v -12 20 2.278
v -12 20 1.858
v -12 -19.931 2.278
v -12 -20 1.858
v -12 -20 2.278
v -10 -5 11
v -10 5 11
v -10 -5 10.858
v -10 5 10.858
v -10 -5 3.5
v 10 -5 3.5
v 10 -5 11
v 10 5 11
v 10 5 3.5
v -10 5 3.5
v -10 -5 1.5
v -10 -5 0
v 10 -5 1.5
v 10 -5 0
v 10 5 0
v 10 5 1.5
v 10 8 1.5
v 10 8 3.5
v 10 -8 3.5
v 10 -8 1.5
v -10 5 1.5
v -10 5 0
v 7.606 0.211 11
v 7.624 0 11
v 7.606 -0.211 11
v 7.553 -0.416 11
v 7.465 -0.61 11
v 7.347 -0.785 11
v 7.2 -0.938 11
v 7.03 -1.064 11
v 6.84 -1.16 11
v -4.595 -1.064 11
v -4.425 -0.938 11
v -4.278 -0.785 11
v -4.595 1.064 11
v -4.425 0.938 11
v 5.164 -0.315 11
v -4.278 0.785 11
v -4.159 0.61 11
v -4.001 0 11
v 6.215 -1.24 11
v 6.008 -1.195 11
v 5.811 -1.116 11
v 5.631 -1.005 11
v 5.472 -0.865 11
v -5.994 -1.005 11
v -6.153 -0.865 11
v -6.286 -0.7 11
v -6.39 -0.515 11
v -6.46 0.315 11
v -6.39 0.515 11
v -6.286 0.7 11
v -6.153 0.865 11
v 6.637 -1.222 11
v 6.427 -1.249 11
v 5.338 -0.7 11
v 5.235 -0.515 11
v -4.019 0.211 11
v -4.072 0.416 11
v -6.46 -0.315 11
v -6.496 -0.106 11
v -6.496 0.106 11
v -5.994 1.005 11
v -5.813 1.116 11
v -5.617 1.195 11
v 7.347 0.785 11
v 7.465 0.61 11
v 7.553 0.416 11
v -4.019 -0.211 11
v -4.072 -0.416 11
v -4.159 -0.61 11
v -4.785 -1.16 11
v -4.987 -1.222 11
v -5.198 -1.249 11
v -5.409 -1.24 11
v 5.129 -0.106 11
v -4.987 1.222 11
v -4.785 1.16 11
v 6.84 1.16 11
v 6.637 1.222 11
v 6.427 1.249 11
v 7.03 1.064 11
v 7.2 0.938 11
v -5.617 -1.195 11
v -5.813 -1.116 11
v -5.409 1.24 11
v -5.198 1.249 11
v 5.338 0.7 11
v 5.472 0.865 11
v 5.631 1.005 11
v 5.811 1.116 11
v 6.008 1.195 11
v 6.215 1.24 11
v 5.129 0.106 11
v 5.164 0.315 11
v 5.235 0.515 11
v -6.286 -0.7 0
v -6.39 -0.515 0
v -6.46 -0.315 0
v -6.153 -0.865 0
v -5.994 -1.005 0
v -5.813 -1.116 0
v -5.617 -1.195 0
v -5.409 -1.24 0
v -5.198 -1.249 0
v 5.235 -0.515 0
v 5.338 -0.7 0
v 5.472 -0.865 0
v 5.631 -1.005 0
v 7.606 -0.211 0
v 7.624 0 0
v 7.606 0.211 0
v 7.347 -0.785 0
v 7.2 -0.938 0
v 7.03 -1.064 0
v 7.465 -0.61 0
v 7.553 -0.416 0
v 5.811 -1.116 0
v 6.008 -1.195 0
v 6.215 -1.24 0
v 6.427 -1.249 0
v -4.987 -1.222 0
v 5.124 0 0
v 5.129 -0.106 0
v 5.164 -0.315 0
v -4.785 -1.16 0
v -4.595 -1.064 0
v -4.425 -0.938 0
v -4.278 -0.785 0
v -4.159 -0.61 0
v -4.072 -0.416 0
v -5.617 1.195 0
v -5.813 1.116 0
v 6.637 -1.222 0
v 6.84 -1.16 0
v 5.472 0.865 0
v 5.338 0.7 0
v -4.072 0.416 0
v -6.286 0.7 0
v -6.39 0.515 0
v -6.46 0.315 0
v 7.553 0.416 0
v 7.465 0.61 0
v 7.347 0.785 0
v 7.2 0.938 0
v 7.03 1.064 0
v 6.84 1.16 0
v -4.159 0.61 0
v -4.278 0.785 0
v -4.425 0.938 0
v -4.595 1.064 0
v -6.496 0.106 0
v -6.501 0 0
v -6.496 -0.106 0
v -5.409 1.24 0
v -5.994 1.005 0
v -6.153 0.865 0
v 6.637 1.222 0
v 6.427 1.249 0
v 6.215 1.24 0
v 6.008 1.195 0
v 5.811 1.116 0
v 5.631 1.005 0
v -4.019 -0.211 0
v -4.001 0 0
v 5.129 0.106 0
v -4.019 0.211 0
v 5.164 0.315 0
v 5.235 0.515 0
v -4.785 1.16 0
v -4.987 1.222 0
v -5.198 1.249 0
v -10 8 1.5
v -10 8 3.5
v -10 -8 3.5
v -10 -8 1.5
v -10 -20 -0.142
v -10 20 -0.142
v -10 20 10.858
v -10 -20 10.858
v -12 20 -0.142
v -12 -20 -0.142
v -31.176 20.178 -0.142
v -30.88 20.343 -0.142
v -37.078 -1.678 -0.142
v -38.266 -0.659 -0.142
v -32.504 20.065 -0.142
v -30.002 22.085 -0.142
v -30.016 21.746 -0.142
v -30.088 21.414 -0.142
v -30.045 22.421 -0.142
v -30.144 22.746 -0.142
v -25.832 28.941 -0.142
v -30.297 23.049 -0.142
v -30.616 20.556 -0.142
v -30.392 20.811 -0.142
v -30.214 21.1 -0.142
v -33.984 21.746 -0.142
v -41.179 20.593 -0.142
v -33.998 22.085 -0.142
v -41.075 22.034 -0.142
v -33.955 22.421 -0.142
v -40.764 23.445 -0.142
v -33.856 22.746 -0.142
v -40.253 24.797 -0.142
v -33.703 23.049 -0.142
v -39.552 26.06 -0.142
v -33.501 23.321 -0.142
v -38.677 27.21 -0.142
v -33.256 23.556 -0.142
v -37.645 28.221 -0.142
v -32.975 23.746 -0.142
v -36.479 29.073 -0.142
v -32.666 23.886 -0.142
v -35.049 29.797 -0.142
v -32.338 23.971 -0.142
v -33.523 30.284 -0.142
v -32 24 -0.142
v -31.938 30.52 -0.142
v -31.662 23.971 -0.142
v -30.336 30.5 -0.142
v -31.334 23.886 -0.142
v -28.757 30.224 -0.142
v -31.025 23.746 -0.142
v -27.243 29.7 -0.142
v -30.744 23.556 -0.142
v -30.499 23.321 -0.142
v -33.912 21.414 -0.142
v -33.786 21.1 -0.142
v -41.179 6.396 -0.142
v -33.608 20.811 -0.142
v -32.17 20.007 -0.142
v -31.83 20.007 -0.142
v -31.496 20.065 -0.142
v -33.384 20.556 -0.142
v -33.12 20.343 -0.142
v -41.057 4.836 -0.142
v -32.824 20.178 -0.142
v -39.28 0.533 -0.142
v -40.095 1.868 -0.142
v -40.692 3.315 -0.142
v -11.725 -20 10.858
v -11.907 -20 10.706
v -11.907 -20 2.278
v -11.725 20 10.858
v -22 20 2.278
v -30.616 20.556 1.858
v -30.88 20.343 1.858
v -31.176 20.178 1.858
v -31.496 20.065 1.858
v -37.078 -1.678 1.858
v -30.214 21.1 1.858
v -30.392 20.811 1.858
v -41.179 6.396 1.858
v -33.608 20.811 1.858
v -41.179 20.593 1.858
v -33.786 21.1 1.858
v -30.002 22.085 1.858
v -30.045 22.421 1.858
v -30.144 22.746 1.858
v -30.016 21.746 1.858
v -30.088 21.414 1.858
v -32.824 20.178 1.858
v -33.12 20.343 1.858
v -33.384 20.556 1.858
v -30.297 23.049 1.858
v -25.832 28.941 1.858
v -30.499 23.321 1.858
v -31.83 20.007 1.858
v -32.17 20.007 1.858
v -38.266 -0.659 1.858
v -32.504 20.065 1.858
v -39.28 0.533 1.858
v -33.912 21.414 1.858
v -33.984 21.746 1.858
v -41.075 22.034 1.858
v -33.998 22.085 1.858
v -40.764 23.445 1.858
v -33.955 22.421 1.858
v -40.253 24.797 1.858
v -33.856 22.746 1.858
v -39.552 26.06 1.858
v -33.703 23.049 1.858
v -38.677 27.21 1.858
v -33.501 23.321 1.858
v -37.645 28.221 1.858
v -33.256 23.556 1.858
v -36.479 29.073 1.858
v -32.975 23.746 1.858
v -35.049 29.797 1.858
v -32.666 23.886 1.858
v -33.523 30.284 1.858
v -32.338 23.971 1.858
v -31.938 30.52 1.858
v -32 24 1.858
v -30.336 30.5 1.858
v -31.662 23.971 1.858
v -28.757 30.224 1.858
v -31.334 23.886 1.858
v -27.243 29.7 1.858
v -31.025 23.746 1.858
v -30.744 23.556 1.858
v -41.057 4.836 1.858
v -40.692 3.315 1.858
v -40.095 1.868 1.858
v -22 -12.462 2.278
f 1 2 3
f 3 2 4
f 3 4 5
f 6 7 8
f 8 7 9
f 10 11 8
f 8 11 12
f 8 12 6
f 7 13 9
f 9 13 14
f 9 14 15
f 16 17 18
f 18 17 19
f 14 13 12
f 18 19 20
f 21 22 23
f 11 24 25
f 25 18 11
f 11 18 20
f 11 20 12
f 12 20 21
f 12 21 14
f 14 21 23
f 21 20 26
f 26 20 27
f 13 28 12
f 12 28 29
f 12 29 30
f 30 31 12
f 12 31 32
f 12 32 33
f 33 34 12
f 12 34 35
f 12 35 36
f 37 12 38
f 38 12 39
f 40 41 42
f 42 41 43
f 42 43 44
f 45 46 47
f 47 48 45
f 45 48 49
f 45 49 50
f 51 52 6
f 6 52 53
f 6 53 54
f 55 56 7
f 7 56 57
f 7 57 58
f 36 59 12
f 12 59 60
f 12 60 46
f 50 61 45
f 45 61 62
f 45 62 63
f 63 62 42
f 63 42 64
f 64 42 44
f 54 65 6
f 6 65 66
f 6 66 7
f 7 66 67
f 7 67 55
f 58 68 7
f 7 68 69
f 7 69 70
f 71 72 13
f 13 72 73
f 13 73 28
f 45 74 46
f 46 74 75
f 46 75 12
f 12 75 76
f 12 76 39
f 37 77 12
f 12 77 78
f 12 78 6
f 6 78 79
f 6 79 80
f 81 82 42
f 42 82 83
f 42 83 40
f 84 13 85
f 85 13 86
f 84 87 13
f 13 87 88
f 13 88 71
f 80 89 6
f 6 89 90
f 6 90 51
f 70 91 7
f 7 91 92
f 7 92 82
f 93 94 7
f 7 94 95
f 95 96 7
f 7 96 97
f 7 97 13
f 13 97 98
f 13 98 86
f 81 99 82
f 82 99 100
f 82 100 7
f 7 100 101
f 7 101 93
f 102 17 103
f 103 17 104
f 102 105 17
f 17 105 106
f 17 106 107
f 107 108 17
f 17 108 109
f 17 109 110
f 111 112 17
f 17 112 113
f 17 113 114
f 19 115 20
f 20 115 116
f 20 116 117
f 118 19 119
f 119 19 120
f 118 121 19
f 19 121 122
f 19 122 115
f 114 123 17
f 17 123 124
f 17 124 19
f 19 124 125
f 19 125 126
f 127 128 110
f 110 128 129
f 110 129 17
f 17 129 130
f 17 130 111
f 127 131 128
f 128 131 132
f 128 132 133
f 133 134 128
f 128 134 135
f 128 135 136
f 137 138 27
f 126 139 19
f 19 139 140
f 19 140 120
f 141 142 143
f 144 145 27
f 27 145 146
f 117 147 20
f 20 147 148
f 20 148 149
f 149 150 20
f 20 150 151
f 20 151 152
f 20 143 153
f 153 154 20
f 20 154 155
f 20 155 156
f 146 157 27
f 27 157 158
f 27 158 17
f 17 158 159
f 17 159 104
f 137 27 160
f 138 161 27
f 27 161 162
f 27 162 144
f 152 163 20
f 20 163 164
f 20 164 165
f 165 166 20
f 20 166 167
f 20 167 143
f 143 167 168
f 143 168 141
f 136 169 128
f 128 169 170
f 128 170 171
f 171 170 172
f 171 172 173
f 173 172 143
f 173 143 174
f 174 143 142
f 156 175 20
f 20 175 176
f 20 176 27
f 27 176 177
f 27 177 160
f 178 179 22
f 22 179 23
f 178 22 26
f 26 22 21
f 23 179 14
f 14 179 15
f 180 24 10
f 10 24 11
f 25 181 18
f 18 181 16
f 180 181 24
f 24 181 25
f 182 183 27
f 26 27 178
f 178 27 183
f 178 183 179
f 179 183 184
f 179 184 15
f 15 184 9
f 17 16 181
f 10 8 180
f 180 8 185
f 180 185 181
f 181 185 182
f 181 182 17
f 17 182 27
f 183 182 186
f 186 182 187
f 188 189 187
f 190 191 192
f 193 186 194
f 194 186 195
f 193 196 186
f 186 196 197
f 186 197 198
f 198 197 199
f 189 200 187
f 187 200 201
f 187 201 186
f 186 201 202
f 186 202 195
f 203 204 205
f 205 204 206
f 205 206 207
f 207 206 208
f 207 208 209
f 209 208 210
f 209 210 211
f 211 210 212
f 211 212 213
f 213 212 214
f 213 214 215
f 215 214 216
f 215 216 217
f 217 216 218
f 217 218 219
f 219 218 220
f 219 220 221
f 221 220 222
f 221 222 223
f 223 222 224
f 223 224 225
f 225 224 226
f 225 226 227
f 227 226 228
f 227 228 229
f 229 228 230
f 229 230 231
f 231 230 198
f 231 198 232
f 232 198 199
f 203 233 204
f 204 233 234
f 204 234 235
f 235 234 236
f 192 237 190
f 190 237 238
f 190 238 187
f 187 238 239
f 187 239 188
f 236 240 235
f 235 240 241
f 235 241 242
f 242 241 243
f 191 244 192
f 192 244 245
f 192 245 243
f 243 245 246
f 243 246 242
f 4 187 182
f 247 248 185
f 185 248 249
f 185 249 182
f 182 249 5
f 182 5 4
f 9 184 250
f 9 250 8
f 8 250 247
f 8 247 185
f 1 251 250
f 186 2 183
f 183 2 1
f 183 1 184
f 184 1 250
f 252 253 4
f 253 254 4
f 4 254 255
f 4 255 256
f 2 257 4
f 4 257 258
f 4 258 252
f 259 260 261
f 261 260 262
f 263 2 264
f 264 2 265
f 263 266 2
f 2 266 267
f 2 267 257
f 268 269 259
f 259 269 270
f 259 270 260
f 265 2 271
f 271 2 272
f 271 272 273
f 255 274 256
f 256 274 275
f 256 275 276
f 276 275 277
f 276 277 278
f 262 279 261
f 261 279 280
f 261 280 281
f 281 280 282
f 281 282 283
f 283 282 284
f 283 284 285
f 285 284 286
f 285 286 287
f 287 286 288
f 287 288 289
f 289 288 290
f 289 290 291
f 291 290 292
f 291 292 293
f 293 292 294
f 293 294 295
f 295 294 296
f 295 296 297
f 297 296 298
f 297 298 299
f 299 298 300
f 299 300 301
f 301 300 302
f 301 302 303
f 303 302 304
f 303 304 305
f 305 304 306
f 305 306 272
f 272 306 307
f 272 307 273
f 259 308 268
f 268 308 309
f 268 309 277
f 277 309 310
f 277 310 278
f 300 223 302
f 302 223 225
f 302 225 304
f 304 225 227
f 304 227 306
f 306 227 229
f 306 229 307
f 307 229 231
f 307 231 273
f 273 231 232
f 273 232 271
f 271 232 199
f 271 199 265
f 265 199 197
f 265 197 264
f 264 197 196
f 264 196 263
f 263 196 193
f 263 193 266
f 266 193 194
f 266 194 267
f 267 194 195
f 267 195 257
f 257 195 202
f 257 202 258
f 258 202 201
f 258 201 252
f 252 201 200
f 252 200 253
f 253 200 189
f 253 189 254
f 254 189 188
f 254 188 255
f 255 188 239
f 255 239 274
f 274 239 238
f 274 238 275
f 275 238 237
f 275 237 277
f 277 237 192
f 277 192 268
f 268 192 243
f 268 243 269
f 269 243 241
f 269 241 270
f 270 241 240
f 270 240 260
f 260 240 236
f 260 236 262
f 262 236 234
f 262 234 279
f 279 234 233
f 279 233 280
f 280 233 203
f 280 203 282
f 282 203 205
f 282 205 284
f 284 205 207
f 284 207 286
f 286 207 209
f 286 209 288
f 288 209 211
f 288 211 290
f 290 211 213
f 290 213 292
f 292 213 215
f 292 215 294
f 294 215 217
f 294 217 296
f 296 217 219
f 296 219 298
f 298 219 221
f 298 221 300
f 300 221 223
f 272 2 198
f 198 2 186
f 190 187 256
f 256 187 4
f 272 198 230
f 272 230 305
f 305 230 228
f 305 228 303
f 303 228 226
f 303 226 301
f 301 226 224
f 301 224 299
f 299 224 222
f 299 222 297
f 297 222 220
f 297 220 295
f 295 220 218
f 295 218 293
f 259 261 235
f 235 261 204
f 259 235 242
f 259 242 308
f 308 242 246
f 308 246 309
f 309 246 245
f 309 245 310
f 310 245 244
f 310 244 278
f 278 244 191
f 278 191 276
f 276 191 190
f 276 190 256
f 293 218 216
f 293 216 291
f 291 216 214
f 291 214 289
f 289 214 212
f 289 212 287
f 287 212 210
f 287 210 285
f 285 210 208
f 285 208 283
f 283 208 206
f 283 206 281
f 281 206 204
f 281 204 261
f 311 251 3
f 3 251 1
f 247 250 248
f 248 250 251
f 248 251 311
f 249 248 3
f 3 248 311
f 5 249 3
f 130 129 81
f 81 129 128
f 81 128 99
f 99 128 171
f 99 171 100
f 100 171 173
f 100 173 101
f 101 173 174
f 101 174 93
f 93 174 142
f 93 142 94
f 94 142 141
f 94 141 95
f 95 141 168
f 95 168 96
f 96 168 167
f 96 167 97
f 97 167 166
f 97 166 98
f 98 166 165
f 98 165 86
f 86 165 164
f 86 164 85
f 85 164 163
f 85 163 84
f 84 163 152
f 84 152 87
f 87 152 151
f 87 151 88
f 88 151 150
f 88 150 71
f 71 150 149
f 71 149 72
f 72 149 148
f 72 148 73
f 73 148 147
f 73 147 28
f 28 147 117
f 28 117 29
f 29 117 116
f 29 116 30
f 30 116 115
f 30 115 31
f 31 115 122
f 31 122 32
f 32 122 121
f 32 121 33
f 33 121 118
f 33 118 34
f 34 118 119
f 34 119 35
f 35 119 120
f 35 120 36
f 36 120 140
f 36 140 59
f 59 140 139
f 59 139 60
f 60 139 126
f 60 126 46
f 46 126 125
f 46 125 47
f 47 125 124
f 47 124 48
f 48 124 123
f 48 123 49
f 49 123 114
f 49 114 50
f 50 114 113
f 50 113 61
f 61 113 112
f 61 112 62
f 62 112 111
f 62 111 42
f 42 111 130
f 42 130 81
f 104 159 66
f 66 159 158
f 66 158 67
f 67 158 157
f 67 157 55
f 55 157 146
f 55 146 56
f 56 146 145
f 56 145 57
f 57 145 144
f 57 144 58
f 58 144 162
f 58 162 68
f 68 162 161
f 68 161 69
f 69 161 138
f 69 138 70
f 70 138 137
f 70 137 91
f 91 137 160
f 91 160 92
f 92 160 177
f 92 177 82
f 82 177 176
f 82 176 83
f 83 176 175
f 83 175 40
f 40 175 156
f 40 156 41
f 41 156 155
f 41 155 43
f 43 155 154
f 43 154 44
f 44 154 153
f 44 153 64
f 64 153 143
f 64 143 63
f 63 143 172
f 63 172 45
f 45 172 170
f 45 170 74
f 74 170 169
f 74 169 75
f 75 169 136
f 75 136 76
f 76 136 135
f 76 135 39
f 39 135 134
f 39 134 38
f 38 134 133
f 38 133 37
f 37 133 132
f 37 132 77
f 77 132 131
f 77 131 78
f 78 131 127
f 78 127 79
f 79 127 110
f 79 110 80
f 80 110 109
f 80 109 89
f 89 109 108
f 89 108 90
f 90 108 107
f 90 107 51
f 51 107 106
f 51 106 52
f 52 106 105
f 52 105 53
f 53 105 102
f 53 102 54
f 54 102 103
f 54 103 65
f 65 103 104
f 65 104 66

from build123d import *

# Parameters (mm, degrees)
SKETCH1_W                = 20
SKETCH1_H                = 10
BOSS_EXTRUDE1_DEPTH      = 11
BOSS_EXTRUDE2_DEPTH      = 3
BOSS_EXTRUDE2_DEPTH_BACK = 13
SKETCH2_W                = 20
SKETCH2_H                = 2
SKETCH3_W                = 11
SKETCH3_H                = 40
BOSS_EXTRUDE3_DEPTH      = 2
SKETCH5_W                = 2
SKETCH5_H                = 60
BOSS_EXTRUDE4_DEPTH      = 40
F_4_0MM_DOWEL_SLOT1_D    = 4
CUT_EXTRUDE1_DEPTH       = 40
CUT_EXTRUDE2_DEPTH       = 40
FILLET1_R                = 10
SKETCH11_W               = 53.631829023
SKETCH11_H               = 118.756200052
CUT_EXTRUDE3_DEPTH       = 40
FILLET2_R                = 10
SKETCH12_W               = 8.579575143
SKETCH12_H               = 40
BOSS_EXTRUDE5_DEPTH      = 10
CUT_EXTRUDE4_DEPTH       = 40
CUT_EXTRUDE5_DEPTH       = 40
F_2_5MM_DOWEL_SLOT1_D    = 2.5


with BuildPart() as part:
    # Sketch1 → Boss-Extrude1 (new body)
    with BuildSketch(Plane.XY):
        Rectangle(SKETCH1_W, SKETCH1_H)
    extrude(amount=BOSS_EXTRUDE1_DEPTH)

    # Sketch2 → Boss-Extrude2 (add, two sides: drawn at the far end of the back side and taken through both)
    with BuildSketch(Plane(origin=(0, 5, 0), x_dir=(1, 0, 0), z_dir=(0, 1, 0)).offset(-BOSS_EXTRUDE2_DEPTH_BACK)):
        with Locations((0, -2.5)):
            Rectangle(SKETCH2_W, SKETCH2_H)
    extrude(amount=BOSS_EXTRUDE2_DEPTH + BOSS_EXTRUDE2_DEPTH_BACK)

    # Sketch3 → Boss-Extrude3 (add)
    with BuildSketch(Plane.ZY.offset(10)):
        with Locations((5.357522791, 0)):
            Rectangle(SKETCH3_W, SKETCH3_H)
    extrude(amount=BOSS_EXTRUDE3_DEPTH)

    # Sketch5 → Boss-Extrude4 (add)
    with BuildSketch(Plane.ZY.offset(12)):
        with Locations((0.857522791, 10)):
            Rectangle(SKETCH5_W, SKETCH5_H)
    extrude(amount=BOSS_EXTRUDE4_DEPTH)

    # Ø4.0mm Dowel Slot1 (through all)
    with Locations(Plane(origin=(0, 0, -0.142477209), x_dir=(-1, 0, 0), z_dir=(0, 0, -1))):
        with Locations((32, 22)):
            Hole(F_4_0MM_DOWEL_SLOT1_D / 2)

    # Sketch9 → Cut-Extrude1 (cut)
    with BuildSketch(Plane(origin=(0, 0, -0.142477209), x_dir=(-1, 0, 0), z_dir=(0, 0, -1))):
        Polygon((12, 20), (31.113690538, 32.355186678), (52, 19.578846837), (52, 40), (12, 40), align=None)
    extrude(amount=-CUT_EXTRUDE1_DEPTH, mode=Mode.SUBTRACT)

    # Sketch10 → Cut-Extrude2 (cut)
    with BuildSketch(Plane.XY.offset(1.857522791)):
        Polygon((-12, -20), (-52, 9.223521766), (-52, -20), align=None)
    extrude(amount=-CUT_EXTRUDE2_DEPTH, mode=Mode.SUBTRACT)

    # Fillet1
    # the kernel refuses this fillet: 10 mm, written as the material it takes off along each edge
    with BuildSketch(Plane(origin=(-31.113690538, 32.355186678, -15.86551048), x_dir=(-0.8530548833247922, -0.5218212012133324, 0), z_dir=(0, 0, 1))) as fillet1_piece_1:
        with BuildLine():
            CenterArc((FILLET1_R * 0.628921330859, FILLET1_R), FILLET1_R, 205.666673807, 64.333326193)
            Line((-FILLET1_R * 0.27240777661, FILLET1_R * 0.566865101812), (0, 0))
            Line((0, 0), (FILLET1_R * 0.628921330859, 0))
        make_face()
    extrude(amount=33.446066543, mode=Mode.SUBTRACT)
    with BuildSketch(Plane(origin=(-52, 19.578846837, -14.156194501), x_dir=(0, -1, 0), z_dir=(0, 0, 1))) as fillet1_piece_2:
        with BuildLine():
            CenterArc((FILLET1_R * 0.560548691689, FILLET1_R), FILLET1_R, 211.454493545, 58.545506455)
            Line((-FILLET1_R * 0.292506191636, FILLET1_R * 0.478178798787), (0, 0))
            Line((0, 0), (FILLET1_R * 0.560548691689, 0))
        make_face()
    extrude(amount=30.027434584, mode=Mode.SUBTRACT)
    with BuildSketch(Plane(origin=(-52, 9.223521766, 14.554076611), x_dir=(0.8074608106822615, -0.5899212144111663, 0), z_dir=(0, 0, -1))) as fillet1_piece_3:
        with BuildLine():
            CenterArc((FILLET1_R * 0.507862152768, -FILLET1_R), FILLET1_R, 90, 53.848582464)
            Line((-FILLET1_R * 0.299598657914, -FILLET1_R * 0.410078785589), (0, 0))
            Line((0, 0), (FILLET1_R * 0.507862152768, 0))
        make_face()
    extrude(amount=27.393107638, mode=Mode.SUBTRACT)

    # Sketch11 → Cut-Extrude3 (cut)
    with BuildSketch(Plane.XY.offset(1.857522791)):
        with Locations((-67.994905589, 39.378925089)):
            Rectangle(SKETCH11_W, SKETCH11_H)
    extrude(amount=-CUT_EXTRUDE3_DEPTH, mode=Mode.SUBTRACT)

    # Fillet2
    # the kernel refuses this fillet: 10 mm, written as the material it takes off along each edge
    with BuildSketch(Plane(origin=(-41.178991077, 1.317822021, -12.839031028), x_dir=(0.8074608106822609, -0.589921214411167, 0), z_dir=(0, 0, 1))) as fillet2_piece_1:
        with BuildLine():
            CenterArc((FILLET2_R * 0.507862152768, FILLET2_R), FILLET2_R, 216.151417536, 53.848582464)
            Line((-FILLET2_R * 0.299598657914, FILLET2_R * 0.410078785589), (0, 0))
            Line((0, 0), (FILLET2_R * 0.507862152768, 0))
        make_face()
    extrude(amount=27.393107638, mode=Mode.SUBTRACT)
    with BuildSketch(Plane(origin=(-41.178991077, 26.198153502, 15.871240084), x_dir=(0, -1, 0), z_dir=(0, 0, -1))) as fillet2_piece_2:
        with BuildLine():
            CenterArc((FILLET2_R * 0.560548691689, -FILLET2_R), FILLET2_R, 90, 58.545506455)
            Line((-FILLET2_R * 0.292506191636, -FILLET2_R * 0.478178798787), (0, 0))
            Line((0, 0), (FILLET2_R * 0.560548691689, 0))
        make_face()
    extrude(amount=30.027434584, mode=Mode.SUBTRACT)

    # Sketch12 → Boss-Extrude5 (add)
    with BuildSketch(Plane.ZY.offset(12)):
        with Locations((6.56773522, 0)):
            Rectangle(SKETCH12_W, SKETCH12_H)
    extrude(amount=BOSS_EXTRUDE5_DEPTH)

    # Sketch13 → Cut-Extrude4 (cut)
    with BuildSketch(Plane.XZ.offset(20)):
        Polygon((-22, 2.277947648), (-11.725193368, 10.857522791), (-22, 10.857522791), align=None)
    extrude(amount=-CUT_EXTRUDE4_DEPTH, mode=Mode.SUBTRACT)

    # Sketch15 → Cut-Extrude5 (cut)
    with BuildSketch(Plane(origin=(0, 0, 2.277947648), x_dir=(-1, 0, 0), z_dir=(0, 0, -1))):
        Polygon((22, -20), (11.906976331, -20), (22, -12.461536252), align=None)
    extrude(amount=-CUT_EXTRUDE5_DEPTH, mode=Mode.SUBTRACT)

    # Ø2.5mm Dowel Slot1 (through all)
    with Locations(Plane.XY.offset(11)):
        with Locations((-5.250715138, 0), (6.374130199, 0)):
            Hole(F_2_5MM_DOWEL_SLOT1_D / 2)


solid = part.part
